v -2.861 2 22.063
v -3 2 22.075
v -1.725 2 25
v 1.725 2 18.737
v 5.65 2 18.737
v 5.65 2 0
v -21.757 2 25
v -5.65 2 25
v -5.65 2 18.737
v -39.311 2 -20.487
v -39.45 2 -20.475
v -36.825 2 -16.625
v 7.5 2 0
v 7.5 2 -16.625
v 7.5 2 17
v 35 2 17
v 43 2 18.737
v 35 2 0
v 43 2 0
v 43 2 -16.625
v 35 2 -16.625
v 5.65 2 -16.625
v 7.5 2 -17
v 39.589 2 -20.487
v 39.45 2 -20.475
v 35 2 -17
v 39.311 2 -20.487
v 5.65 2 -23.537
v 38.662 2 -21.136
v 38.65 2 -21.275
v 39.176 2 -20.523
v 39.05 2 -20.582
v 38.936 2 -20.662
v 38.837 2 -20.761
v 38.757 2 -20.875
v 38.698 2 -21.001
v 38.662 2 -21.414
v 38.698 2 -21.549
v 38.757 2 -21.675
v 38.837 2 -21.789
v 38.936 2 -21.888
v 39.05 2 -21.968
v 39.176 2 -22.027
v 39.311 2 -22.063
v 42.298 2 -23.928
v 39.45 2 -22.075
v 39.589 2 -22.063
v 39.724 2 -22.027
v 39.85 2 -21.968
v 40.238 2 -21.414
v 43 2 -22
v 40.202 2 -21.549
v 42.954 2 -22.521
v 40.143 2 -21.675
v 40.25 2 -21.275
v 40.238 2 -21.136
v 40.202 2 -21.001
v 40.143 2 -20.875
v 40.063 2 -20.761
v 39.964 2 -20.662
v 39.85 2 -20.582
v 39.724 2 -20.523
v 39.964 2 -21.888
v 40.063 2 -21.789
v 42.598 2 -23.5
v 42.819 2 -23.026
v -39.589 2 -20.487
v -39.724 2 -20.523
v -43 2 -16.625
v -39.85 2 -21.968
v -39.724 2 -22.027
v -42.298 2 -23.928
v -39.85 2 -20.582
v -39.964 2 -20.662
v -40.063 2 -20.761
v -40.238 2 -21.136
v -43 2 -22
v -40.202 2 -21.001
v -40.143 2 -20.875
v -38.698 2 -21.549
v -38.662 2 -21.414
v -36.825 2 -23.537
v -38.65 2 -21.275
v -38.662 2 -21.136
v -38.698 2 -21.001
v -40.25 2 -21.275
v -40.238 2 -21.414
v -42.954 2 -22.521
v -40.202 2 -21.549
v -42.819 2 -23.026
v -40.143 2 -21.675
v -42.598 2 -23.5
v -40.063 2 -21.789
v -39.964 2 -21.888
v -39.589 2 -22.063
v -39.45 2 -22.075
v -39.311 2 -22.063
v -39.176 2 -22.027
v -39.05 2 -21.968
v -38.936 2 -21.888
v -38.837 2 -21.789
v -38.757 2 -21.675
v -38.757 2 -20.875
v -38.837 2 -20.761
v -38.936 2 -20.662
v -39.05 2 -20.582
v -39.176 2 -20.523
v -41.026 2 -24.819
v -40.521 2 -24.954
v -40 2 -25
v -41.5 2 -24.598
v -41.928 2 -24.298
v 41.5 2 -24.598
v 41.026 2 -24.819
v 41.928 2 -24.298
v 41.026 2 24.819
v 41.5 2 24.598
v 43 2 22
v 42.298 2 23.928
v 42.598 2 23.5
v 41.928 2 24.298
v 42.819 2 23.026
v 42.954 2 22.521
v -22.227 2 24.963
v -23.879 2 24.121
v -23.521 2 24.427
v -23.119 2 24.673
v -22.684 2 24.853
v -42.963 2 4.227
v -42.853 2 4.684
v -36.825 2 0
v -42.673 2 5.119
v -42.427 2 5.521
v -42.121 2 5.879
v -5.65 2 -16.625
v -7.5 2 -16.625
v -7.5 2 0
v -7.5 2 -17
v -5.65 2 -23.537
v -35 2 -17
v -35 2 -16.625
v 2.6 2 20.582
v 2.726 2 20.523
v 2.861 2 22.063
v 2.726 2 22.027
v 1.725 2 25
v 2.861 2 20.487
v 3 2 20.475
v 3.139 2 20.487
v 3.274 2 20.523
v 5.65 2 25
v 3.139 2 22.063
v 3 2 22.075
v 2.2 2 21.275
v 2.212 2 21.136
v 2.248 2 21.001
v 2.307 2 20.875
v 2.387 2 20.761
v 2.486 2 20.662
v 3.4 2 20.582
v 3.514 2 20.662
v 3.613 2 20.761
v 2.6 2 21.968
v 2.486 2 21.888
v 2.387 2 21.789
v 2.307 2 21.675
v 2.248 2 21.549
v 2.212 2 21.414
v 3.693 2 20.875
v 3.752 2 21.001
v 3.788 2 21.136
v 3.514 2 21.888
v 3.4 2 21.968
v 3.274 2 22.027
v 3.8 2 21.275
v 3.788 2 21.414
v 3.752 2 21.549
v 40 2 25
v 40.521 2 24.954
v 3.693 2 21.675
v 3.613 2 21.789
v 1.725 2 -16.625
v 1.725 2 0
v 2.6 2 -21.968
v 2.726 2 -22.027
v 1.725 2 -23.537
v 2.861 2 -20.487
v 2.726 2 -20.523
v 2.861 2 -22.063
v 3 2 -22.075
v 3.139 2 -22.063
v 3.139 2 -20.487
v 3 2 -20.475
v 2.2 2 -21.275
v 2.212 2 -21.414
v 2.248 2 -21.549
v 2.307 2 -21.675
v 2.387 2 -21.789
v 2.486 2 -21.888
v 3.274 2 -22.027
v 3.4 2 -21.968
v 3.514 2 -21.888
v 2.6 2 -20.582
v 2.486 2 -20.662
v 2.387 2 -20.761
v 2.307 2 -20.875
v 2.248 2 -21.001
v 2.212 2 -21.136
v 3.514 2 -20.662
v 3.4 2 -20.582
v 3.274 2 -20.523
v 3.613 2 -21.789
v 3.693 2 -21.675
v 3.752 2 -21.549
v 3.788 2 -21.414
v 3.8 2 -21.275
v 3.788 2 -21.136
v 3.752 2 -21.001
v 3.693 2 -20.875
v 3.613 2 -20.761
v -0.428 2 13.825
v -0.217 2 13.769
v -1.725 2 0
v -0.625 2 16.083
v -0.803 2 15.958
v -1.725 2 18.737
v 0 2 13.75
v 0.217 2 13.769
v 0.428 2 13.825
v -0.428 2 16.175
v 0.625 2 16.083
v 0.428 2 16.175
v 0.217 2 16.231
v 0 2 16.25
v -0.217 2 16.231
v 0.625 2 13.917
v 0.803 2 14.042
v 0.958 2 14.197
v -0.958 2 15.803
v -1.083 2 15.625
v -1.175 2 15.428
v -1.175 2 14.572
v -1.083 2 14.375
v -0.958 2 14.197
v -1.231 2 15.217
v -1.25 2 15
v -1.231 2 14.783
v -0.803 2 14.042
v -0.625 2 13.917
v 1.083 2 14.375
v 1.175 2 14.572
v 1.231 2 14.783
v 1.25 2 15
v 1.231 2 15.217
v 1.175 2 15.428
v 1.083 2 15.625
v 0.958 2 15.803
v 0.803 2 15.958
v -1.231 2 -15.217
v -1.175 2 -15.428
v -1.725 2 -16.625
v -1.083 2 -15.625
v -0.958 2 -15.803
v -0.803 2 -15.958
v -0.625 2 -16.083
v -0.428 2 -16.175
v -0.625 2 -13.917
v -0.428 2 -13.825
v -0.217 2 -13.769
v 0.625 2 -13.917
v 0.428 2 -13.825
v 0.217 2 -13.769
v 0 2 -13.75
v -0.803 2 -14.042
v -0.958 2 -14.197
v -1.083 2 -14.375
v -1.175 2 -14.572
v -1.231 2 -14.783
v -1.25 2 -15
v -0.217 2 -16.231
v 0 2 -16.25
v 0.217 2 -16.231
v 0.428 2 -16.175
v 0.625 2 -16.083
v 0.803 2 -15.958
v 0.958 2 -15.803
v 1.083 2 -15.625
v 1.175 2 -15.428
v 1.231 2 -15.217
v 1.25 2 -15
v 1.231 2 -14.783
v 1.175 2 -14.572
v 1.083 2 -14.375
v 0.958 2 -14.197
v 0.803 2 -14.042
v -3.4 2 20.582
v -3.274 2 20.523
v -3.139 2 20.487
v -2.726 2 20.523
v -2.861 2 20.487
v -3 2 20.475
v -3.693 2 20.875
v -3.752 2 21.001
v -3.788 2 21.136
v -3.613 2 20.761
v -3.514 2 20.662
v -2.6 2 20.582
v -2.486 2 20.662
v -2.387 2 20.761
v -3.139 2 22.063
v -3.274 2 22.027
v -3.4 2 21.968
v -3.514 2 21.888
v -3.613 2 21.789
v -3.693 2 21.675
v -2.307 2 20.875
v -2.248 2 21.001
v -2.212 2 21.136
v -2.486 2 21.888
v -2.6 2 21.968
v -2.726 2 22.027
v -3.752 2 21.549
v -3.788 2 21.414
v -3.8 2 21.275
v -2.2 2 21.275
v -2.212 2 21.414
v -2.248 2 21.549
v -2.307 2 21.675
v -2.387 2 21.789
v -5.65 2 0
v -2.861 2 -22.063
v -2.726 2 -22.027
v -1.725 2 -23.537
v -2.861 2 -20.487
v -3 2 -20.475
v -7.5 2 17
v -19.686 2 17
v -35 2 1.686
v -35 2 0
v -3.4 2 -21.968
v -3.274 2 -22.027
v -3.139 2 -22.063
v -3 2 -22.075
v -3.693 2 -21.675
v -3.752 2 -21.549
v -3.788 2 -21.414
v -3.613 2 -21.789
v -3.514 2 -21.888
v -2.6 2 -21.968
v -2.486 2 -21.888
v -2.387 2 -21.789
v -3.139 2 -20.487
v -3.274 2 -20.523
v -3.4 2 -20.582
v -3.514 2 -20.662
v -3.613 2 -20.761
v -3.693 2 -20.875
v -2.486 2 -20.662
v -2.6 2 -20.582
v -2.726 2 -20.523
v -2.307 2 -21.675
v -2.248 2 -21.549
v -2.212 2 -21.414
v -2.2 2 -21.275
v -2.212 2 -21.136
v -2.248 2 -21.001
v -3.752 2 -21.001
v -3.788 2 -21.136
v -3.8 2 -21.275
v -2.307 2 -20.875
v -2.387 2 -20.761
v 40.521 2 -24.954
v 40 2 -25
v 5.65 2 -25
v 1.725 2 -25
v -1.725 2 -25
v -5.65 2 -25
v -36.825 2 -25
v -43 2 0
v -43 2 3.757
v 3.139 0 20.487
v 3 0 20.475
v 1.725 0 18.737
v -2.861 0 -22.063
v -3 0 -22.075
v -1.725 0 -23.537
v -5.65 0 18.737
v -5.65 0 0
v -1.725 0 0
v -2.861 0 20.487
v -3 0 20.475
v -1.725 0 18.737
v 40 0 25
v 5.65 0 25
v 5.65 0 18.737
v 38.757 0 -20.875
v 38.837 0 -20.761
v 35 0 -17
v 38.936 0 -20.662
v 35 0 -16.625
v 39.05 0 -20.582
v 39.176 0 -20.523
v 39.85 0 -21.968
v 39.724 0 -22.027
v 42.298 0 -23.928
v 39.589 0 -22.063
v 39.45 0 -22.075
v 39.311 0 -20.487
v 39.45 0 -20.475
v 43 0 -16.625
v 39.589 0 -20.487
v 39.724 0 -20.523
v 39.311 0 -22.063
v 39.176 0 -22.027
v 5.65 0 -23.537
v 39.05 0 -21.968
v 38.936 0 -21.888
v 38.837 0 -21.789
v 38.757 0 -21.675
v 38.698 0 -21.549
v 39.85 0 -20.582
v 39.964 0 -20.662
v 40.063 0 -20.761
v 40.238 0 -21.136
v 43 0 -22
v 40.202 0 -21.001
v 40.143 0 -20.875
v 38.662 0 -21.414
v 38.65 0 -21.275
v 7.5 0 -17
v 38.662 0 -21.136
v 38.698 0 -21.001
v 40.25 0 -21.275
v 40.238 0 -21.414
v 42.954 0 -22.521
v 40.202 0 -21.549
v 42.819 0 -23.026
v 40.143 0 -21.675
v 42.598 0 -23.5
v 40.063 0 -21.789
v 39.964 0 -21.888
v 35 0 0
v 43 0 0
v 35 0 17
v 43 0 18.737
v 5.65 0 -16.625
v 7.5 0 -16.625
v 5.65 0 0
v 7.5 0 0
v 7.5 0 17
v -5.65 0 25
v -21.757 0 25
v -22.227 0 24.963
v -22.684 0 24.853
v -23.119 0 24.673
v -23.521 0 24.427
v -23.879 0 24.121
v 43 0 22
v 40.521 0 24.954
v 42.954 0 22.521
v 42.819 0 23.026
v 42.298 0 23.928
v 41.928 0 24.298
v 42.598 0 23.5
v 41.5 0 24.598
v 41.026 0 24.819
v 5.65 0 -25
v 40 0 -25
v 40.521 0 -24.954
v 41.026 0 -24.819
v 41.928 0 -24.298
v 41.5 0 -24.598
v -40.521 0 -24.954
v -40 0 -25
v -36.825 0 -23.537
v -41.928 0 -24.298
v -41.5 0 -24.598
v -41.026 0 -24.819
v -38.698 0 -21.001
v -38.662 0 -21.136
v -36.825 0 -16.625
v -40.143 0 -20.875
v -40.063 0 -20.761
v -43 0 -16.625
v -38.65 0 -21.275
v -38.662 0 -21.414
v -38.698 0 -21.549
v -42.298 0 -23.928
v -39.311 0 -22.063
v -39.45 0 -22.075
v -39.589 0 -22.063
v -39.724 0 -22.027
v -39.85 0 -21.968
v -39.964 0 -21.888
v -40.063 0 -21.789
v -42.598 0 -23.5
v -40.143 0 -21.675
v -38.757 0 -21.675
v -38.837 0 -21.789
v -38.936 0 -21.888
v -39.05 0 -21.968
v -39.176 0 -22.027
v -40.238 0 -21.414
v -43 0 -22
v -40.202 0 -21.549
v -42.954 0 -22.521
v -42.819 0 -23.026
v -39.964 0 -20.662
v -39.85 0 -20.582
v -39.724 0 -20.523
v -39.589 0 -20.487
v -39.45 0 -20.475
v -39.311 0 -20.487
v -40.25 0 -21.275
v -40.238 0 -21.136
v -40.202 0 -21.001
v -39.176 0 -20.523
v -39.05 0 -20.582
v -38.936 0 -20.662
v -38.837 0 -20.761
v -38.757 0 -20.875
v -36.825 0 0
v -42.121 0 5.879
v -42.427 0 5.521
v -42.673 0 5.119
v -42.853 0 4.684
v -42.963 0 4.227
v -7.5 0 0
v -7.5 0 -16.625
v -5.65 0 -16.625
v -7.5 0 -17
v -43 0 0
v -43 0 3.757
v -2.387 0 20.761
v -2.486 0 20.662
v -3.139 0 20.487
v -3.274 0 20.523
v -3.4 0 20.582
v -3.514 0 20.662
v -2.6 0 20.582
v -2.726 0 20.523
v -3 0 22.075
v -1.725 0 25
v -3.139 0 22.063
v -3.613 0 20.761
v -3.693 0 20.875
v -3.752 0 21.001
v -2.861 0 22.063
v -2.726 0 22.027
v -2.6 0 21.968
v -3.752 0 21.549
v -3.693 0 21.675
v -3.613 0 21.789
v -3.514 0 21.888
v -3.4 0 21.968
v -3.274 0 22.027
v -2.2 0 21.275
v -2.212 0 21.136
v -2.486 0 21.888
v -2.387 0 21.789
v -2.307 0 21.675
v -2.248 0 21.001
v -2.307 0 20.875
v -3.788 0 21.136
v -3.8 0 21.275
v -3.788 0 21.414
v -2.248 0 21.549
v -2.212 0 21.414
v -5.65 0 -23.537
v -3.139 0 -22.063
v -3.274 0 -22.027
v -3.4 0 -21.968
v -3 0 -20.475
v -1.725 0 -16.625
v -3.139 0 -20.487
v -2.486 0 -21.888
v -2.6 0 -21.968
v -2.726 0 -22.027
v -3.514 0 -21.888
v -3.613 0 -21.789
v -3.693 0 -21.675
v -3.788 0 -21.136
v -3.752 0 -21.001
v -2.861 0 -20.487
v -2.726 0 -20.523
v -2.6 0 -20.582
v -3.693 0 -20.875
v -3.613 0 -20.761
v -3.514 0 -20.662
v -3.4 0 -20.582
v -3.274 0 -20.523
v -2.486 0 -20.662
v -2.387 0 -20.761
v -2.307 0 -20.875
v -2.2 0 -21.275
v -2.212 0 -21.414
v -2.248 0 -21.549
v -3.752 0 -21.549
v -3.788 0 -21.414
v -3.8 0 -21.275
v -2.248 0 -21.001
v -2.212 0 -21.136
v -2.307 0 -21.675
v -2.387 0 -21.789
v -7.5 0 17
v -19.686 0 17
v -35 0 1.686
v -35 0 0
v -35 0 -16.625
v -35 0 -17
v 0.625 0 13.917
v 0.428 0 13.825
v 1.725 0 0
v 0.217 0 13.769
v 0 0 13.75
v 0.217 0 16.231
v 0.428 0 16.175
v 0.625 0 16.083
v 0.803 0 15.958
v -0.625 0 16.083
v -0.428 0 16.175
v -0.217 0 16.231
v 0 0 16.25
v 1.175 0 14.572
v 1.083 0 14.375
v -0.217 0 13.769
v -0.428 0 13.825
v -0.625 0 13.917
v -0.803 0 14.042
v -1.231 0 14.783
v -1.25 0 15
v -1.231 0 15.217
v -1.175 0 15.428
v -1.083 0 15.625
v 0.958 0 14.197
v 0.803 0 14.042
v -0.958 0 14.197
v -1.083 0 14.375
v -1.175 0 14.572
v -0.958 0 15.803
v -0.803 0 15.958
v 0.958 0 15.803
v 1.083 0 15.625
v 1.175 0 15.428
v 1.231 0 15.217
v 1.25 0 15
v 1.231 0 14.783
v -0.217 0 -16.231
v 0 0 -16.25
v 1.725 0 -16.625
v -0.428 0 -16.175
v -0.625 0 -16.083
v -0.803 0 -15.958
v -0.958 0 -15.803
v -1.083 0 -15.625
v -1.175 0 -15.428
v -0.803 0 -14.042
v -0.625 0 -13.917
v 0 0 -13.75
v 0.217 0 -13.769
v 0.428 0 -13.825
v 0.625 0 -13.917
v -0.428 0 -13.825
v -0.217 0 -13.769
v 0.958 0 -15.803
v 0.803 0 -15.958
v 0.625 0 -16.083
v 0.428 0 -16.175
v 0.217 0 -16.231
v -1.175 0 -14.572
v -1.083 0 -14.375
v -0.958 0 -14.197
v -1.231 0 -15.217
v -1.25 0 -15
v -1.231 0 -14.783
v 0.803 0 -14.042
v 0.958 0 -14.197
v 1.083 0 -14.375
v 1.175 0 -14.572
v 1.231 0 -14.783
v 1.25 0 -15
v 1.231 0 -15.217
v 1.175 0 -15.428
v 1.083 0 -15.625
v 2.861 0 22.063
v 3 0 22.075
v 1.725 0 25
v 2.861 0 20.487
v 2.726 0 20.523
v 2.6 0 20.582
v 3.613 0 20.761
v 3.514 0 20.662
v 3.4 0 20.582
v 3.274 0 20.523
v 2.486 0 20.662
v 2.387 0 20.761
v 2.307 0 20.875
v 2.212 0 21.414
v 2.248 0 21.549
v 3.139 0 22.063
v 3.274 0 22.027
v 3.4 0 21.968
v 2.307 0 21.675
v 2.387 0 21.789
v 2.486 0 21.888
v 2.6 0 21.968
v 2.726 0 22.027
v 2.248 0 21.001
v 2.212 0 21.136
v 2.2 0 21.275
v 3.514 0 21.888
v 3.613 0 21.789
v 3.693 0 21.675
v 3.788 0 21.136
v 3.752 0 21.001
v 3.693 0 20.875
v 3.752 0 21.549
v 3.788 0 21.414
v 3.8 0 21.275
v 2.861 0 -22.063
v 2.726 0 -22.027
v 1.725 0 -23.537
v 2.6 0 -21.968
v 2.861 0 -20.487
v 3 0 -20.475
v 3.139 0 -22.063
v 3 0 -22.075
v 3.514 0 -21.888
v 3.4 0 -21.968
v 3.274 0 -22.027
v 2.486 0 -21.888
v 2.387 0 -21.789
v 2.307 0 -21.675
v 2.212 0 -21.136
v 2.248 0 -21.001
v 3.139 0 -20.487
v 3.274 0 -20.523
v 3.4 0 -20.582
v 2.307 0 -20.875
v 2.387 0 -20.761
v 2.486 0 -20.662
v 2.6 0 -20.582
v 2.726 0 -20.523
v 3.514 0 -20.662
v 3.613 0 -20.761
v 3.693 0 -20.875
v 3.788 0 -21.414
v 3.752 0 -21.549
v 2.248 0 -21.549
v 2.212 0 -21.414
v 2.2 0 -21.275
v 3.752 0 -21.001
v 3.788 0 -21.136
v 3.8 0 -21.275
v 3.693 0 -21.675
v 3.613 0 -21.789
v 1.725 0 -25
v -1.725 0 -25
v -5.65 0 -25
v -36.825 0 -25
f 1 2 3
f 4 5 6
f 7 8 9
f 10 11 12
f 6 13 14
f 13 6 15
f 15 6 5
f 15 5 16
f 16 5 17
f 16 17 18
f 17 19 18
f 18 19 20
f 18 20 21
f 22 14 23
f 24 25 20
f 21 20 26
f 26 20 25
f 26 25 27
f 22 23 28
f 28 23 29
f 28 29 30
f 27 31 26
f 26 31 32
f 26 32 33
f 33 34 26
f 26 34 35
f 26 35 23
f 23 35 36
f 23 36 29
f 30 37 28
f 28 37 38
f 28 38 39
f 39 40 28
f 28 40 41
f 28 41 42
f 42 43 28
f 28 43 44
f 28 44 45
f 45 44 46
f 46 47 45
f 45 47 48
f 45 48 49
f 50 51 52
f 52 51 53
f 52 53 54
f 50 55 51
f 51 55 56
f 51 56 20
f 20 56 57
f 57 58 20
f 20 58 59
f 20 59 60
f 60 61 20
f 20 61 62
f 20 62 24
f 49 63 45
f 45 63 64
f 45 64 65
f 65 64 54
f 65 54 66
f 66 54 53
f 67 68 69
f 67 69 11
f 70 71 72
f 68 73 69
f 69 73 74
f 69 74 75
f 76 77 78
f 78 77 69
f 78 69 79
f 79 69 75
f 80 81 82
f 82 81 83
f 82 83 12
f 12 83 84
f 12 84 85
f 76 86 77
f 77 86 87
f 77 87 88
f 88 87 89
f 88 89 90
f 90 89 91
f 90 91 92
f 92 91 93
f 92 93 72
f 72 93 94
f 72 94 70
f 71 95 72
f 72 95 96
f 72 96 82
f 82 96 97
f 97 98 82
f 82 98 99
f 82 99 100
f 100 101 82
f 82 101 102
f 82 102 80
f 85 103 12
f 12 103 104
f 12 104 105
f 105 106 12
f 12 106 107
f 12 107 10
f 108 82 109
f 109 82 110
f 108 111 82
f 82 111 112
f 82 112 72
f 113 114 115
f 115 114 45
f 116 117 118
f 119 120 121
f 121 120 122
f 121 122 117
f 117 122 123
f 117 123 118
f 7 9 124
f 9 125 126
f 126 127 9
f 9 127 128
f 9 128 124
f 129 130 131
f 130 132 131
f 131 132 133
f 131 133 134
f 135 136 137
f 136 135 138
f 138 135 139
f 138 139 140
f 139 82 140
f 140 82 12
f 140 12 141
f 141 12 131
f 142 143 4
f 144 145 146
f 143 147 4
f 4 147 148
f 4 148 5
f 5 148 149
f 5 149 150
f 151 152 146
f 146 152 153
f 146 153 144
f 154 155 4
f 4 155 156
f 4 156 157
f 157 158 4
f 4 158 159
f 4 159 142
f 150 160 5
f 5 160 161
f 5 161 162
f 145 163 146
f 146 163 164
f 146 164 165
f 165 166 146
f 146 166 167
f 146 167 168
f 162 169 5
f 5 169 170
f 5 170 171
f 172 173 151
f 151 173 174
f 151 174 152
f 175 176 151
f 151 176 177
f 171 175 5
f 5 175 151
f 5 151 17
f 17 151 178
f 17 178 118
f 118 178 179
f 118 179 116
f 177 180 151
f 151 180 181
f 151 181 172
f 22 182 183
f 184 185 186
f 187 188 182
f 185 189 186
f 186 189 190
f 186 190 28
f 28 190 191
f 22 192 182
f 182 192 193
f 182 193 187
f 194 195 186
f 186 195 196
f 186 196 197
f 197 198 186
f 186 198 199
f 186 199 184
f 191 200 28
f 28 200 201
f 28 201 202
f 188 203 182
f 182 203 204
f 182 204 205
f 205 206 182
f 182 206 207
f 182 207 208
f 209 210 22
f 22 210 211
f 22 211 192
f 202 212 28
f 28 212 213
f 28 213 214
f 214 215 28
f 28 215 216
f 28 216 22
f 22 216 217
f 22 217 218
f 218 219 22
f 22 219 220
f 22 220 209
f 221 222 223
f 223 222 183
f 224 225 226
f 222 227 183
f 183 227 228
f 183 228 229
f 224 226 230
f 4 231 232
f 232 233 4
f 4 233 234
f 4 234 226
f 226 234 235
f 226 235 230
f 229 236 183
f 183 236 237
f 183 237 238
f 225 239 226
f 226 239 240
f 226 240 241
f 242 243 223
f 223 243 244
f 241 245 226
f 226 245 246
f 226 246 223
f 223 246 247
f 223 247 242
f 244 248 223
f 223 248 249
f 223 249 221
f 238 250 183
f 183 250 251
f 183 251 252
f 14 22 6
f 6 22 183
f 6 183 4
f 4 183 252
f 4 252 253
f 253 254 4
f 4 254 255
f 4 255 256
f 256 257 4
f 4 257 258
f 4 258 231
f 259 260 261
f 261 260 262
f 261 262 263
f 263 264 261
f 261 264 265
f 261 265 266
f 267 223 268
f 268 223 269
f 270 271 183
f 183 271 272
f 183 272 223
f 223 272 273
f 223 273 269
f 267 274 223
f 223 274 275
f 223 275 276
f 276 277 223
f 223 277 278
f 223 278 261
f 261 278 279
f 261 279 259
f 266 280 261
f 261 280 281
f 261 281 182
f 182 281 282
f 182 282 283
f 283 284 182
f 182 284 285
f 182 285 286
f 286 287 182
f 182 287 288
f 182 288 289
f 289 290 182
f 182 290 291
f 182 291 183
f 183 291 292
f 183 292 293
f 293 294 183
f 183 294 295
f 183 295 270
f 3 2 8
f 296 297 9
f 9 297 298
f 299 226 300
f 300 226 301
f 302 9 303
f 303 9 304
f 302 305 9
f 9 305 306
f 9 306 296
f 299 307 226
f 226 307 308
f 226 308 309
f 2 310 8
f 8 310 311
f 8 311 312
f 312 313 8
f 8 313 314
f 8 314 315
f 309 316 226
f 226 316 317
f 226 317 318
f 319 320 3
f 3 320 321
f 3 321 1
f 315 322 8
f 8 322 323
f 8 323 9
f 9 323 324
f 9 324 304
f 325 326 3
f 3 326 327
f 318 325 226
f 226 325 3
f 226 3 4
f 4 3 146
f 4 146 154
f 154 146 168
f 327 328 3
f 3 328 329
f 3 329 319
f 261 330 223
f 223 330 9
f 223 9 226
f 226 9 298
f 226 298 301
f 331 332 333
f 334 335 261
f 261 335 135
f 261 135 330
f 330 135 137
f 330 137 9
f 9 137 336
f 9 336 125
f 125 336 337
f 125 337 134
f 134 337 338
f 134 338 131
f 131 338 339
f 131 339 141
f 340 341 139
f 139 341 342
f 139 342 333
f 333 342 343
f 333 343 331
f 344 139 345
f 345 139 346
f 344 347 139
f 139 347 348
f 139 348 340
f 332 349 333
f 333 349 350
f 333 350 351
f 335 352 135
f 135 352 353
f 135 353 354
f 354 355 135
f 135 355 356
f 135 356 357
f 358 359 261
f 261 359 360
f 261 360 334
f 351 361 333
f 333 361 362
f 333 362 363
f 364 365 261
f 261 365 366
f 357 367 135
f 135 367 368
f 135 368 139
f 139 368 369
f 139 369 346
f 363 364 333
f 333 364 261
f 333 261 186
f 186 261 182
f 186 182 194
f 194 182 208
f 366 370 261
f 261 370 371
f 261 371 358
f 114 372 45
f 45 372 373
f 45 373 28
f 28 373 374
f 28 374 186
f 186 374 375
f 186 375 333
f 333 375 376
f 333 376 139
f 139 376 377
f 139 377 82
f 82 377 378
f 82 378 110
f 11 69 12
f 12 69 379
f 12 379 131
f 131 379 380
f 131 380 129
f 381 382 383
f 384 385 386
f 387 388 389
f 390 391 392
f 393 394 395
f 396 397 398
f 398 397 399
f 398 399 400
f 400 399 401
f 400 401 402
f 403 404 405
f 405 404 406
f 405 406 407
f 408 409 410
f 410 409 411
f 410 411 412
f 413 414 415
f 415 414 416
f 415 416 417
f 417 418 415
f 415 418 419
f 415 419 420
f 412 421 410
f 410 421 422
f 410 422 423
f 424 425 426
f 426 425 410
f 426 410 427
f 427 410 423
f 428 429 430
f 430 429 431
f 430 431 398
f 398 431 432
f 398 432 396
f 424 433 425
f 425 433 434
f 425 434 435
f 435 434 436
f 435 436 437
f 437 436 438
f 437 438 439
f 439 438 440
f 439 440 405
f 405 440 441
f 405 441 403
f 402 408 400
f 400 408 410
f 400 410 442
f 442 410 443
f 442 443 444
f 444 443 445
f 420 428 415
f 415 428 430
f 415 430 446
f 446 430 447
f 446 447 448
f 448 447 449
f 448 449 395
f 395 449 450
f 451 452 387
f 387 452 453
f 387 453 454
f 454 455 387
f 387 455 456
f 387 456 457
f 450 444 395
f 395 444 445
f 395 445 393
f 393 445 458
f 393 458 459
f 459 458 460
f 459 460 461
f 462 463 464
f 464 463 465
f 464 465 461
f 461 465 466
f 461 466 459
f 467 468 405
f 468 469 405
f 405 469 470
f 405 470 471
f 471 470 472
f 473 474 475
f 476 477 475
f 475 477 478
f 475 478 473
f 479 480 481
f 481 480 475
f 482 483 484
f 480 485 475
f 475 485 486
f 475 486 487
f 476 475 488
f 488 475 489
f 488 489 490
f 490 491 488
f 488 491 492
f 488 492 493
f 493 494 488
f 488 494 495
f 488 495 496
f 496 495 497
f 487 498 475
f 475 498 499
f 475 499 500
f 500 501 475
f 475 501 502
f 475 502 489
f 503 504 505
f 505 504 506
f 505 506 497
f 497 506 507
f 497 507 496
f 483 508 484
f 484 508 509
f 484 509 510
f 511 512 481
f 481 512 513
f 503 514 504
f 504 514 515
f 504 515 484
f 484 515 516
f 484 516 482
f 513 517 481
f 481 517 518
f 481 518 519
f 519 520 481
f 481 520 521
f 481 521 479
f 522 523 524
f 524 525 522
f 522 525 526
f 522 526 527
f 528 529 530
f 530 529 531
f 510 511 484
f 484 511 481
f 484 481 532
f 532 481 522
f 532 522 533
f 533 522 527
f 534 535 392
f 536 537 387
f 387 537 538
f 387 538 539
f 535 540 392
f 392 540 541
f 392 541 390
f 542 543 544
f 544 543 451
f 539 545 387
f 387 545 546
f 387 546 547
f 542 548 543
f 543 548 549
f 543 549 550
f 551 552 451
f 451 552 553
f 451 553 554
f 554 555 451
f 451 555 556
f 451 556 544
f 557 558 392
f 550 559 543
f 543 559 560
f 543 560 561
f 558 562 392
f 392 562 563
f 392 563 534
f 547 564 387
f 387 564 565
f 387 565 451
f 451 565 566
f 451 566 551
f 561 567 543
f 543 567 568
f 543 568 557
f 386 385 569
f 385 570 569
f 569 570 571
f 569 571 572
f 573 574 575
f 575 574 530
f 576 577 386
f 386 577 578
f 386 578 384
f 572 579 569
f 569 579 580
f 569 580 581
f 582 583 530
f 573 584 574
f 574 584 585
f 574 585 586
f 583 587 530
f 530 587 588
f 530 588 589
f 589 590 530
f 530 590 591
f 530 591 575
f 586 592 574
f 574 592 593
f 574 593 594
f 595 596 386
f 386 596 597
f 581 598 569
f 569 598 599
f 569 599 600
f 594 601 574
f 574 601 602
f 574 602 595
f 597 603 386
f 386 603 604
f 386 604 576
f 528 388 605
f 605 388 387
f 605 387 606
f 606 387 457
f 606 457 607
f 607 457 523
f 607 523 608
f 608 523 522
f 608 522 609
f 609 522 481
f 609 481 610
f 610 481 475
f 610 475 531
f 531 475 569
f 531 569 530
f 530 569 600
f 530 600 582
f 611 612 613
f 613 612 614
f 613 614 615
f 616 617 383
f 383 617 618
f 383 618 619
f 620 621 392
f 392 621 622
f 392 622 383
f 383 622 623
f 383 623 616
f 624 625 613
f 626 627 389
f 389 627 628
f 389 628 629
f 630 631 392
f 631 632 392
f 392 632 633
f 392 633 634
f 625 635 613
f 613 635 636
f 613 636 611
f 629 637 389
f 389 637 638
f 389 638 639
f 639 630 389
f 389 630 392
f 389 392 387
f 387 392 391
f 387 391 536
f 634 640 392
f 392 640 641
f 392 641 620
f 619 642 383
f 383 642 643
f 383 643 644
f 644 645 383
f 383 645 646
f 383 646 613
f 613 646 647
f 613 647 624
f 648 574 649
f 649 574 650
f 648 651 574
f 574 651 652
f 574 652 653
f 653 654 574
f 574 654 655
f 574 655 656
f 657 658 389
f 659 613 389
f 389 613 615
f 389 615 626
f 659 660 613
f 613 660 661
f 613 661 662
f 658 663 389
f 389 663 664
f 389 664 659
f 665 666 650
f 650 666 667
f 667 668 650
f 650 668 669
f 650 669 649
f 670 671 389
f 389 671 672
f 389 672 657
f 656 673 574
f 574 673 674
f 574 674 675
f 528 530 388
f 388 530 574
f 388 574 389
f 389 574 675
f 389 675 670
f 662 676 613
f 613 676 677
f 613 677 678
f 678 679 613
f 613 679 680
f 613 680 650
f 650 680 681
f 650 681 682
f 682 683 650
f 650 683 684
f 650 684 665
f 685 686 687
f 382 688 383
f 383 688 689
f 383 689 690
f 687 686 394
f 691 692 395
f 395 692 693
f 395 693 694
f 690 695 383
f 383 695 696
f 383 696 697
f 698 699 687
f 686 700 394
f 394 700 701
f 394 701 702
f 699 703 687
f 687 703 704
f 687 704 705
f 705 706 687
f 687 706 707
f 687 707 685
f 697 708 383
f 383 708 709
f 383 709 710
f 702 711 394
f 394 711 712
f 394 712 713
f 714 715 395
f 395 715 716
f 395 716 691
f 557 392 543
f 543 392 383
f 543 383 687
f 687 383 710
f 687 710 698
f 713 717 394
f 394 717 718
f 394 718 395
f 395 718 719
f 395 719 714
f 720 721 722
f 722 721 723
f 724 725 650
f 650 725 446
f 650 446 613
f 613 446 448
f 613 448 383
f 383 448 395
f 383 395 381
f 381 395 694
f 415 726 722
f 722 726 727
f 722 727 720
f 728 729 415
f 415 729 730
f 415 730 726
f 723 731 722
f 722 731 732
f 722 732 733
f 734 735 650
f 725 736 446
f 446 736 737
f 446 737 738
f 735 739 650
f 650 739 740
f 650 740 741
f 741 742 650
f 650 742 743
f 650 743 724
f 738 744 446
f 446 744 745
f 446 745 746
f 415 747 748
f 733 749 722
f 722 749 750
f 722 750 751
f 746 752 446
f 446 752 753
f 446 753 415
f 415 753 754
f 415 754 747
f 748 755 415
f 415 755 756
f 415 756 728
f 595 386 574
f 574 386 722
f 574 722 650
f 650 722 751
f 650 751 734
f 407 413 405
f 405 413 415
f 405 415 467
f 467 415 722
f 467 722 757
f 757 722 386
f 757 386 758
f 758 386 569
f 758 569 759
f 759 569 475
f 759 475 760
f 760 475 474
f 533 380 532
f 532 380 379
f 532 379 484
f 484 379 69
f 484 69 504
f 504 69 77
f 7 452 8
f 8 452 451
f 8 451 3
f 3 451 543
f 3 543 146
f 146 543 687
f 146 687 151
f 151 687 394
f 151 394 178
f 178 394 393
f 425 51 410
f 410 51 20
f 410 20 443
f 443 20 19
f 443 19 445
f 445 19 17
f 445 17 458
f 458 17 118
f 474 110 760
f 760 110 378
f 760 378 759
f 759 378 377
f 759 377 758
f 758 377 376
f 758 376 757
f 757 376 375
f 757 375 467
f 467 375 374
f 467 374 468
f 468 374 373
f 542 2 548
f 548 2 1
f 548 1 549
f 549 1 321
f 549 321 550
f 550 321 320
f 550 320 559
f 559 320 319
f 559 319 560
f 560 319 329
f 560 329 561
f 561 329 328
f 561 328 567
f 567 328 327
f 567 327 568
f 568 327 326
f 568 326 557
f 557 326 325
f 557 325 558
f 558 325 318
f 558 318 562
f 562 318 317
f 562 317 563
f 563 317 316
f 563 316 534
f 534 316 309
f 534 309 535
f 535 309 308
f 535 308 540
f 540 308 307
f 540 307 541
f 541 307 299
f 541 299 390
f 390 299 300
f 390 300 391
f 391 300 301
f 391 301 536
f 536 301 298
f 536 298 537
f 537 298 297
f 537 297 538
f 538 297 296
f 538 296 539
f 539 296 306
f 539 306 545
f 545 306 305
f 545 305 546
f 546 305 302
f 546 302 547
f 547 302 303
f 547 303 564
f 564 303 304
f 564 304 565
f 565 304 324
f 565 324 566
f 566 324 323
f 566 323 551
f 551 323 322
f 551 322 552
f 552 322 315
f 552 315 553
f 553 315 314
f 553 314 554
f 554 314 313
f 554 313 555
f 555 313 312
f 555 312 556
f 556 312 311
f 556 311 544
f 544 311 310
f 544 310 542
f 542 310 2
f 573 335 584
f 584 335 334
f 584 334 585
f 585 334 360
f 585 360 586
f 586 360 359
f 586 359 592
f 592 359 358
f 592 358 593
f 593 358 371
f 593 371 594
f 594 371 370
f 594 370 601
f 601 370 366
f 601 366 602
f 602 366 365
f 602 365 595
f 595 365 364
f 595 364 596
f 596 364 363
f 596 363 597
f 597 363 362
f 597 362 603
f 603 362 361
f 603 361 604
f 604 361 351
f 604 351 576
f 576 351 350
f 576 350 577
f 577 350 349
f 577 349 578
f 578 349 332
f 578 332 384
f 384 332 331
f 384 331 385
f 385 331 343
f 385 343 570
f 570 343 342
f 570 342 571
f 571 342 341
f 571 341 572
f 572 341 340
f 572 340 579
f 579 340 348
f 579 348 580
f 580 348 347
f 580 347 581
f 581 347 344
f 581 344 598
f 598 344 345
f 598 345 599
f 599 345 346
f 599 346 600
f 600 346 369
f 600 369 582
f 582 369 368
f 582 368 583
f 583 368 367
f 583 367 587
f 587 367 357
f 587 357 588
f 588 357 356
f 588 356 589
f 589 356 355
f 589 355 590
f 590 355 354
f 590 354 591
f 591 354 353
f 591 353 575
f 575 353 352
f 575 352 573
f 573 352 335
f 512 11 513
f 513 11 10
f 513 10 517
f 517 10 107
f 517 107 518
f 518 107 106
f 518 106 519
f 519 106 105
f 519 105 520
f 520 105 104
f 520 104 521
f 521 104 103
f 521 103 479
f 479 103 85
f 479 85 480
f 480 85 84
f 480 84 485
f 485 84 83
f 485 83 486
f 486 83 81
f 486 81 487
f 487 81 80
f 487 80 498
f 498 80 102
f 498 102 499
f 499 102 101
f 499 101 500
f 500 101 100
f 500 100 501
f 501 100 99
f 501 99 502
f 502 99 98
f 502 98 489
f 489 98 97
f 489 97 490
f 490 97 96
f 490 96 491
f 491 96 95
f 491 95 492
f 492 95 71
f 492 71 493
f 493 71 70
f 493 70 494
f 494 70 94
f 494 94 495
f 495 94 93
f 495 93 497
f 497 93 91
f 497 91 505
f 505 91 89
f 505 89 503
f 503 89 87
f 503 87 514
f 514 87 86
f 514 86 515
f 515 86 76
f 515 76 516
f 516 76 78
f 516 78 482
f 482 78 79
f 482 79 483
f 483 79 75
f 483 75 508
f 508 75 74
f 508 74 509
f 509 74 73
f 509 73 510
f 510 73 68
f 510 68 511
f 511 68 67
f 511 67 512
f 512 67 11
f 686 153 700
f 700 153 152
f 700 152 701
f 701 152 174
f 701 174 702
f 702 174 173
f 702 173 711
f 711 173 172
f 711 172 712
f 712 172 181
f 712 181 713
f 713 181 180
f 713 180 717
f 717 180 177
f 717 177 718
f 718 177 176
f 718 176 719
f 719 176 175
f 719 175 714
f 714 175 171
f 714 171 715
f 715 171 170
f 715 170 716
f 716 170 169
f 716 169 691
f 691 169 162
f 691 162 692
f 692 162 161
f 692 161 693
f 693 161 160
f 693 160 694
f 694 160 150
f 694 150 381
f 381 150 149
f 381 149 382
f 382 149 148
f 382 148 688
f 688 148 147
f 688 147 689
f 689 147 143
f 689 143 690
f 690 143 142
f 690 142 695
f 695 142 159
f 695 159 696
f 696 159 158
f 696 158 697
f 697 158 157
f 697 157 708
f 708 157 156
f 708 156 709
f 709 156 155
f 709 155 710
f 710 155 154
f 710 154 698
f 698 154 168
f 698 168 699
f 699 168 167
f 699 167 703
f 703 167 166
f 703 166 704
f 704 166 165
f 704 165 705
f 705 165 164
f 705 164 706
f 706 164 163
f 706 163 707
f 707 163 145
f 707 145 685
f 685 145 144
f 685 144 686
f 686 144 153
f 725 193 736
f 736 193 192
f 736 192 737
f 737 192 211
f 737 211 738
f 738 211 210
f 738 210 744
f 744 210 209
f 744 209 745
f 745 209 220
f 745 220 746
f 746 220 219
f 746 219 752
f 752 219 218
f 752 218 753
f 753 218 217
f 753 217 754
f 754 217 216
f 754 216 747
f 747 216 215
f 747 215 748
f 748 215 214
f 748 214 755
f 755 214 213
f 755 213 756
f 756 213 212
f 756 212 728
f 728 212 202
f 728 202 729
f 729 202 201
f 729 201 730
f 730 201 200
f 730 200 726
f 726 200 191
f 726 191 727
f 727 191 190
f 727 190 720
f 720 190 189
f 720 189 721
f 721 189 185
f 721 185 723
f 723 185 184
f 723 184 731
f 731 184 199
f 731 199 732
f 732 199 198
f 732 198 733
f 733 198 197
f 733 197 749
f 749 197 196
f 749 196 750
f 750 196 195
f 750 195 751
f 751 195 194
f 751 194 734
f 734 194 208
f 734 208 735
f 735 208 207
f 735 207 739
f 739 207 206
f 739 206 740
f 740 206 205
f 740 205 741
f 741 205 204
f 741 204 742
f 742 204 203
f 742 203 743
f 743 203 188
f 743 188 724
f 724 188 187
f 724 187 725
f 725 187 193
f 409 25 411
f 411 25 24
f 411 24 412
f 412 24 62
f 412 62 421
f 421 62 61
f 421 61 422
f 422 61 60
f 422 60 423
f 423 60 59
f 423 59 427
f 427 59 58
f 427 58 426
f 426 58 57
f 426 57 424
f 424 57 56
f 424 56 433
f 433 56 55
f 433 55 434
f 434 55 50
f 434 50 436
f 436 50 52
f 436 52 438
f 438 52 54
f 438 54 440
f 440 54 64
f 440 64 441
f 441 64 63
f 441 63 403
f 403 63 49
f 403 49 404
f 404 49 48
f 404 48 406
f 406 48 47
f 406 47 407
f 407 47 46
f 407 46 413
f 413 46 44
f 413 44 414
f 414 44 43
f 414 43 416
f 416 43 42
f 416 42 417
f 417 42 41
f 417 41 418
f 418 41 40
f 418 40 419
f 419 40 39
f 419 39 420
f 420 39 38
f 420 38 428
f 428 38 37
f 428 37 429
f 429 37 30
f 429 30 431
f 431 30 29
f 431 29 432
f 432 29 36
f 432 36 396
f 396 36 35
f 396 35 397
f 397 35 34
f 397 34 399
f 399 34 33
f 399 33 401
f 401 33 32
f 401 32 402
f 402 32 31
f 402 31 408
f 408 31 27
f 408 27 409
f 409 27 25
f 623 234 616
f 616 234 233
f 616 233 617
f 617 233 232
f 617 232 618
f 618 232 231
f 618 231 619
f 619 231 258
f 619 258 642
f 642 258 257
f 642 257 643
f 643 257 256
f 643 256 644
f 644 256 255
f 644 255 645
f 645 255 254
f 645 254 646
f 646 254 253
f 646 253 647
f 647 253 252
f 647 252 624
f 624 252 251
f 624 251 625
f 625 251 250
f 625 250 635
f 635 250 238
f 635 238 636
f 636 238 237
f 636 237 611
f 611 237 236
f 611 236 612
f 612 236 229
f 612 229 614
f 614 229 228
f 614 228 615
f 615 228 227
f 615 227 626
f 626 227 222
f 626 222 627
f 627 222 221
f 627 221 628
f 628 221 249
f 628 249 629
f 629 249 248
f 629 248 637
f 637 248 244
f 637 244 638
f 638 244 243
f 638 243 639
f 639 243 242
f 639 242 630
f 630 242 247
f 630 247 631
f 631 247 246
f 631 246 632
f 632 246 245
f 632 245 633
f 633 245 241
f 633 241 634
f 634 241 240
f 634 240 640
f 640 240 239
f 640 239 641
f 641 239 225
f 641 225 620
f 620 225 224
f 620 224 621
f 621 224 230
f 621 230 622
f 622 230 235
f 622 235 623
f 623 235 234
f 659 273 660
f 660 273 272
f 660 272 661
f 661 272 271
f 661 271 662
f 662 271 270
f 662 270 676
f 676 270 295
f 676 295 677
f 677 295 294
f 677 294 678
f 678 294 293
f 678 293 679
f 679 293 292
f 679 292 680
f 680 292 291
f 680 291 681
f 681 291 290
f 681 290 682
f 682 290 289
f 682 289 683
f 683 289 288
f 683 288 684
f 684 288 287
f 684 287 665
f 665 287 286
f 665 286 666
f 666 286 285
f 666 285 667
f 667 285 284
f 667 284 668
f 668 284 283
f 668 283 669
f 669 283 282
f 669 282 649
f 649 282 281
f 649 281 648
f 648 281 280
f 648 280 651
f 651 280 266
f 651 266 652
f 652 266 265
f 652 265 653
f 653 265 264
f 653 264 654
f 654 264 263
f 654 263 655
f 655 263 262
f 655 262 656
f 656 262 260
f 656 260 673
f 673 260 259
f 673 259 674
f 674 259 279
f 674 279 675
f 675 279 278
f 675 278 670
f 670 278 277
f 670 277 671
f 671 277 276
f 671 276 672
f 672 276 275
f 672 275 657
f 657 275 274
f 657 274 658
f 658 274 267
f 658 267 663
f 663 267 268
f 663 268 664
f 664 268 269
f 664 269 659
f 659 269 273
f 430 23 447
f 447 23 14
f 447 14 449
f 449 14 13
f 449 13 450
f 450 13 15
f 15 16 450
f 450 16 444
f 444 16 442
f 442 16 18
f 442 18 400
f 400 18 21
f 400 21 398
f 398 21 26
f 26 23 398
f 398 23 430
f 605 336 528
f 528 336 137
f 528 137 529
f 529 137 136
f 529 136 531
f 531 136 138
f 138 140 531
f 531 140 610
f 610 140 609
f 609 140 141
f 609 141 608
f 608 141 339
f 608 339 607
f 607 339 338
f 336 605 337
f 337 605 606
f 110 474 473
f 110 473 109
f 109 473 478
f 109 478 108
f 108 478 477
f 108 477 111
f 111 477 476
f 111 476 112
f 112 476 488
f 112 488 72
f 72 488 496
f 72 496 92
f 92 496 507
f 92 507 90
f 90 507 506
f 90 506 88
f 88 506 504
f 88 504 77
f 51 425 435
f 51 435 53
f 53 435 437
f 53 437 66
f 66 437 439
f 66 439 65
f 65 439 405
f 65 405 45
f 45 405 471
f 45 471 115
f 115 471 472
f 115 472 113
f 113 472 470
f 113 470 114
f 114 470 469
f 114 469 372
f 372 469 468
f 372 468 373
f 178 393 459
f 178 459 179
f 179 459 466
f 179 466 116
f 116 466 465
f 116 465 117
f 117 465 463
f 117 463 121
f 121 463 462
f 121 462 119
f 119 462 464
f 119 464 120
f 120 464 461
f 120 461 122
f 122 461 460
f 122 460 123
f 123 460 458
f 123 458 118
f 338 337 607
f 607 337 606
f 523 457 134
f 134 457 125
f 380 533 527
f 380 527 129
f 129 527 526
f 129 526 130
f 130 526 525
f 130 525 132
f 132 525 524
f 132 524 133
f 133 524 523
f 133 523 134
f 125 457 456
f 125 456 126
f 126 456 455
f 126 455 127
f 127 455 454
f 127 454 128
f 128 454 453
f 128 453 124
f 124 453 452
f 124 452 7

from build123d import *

# Parameters (mm, degrees)
SKIZZE1_W                       = 86
SKIZZE1_H                       = 50
AUFSATZ_LINEAR_AUSTRAGEN1_DEPTH = 2
F_1_6_1_6_DIAMETER_HOLE1_D      = 1.6
M3X0_5_GEWINDEBOHRUNG1_D        = 2.5
M3X0_5_GEWINDEBOHRUNG1_DEPTH    = 8.5
M3X0_5_GEWINDEBOHRUNG1_TIP      = 0.751075774
SKIZZE6_W                       = 27.5
SKIZZE6_H                       = 34
SCHNITT_LINEAR_AUSTRAGEN1_DEPTH = 3
FILLET1_R                       = 3
CUT_EXTRUDE1_REACH              = 4
SKETCH1_W                       = 20
SKETCH1_H                       = 20
BOSS_EXTRUDE1_DEPTH             = 2
FILLET2_R                       = 3


with BuildPart() as part:
    # Skizze1 → Aufsatz-Linear austragen1 (new body)
    with BuildSketch(Plane(origin=(0, 0, 0), x_dir=(1, 0, 0), z_dir=(0, 1, 0))):
        Rectangle(SKIZZE1_W, SKIZZE1_H)
    extrude(amount=AUFSATZ_LINEAR_AUSTRAGEN1_DEPTH)

    # Ø1.6 (1.6) Diameter Hole1 (through all)
    with Locations(Plane(origin=(0, 2, 0), x_dir=(1, 0, 0), z_dir=(0, 1, 0))):
        with Locations((-39.45, 21.275), (-3, 21.275), (-3, -21.275)):
            f_1_6_1_6_diameter_hole1 = Hole(F_1_6_1_6_DIAMETER_HOLE1_D / 2)

    # Spiegeln1: Ø1.6 (1.6) Diameter Hole1 across plane
    add(f_1_6_1_6_diameter_hole1.mirror(Plane(origin=(0, 0, 0), x_dir=(0, 0, 1), z_dir=(1, 0, 0))), mode=Mode.SUBTRACT)

    # M3x0.5 Gewindebohrung1
    with Locations(Plane(origin=(0, 2, 0), x_dir=(1, 0, 0), z_dir=(0, 1, 0))):
        with Locations((0, 15), (0, -15)):
            Hole(M3X0_5_GEWINDEBOHRUNG1_D / 2, depth=M3X0_5_GEWINDEBOHRUNG1_DEPTH)
            with Locations((0, 0, -(M3X0_5_GEWINDEBOHRUNG1_DEPTH + M3X0_5_GEWINDEBOHRUNG1_TIP / 2))):  # 118° drill point
                Cone(0, M3X0_5_GEWINDEBOHRUNG1_D / 2, M3X0_5_GEWINDEBOHRUNG1_TIP, mode=Mode.SUBTRACT)

    # Skizze6 → Schnitt-Linear austragen1 (cut, through all)
    with BuildSketch(Plane(origin=(0, 0, 0), x_dir=(1, 0, 0), z_dir=(0, 1, 0))):
        with Locations((-21.25, 0)):
            Rectangle(SKIZZE6_W, SKIZZE6_H)
        with Locations((21.25, 0)):
            Rectangle(SKIZZE6_W, SKIZZE6_H)
    extrude(amount=SCHNITT_LINEAR_AUSTRAGEN1_DEPTH, mode=Mode.SUBTRACT)

    # Fillet1
    fillet1_edges = [part.edges().sort_by_distance(p)[0] for p in [
        (-43, 1, -25),
        (43, 1, -25),
        (43, 1, 25),
        (-43, 1, 25),
    ]]
    fillet(fillet1_edges, radius=FILLET1_R)

    # Sketch1 → Cut-Extrude1 (cut, up to next)
    with BuildSketch(Plane(origin=(0, 2, 0), x_dir=(1, 0, 0), z_dir=(0, 1, 0)), mode=Mode.PRIVATE) as cut_extrude1_sk1:
        with Locations((-33, -15)):
            Rectangle(SKETCH1_W, SKETCH1_H)
    cut_extrude1_tool1 = extrude(cut_extrude1_sk1.sketch, amount=-CUT_EXTRUDE1_REACH, mode=Mode.PRIVATE) & part.part
    add(cut_extrude1_tool1.solids().sort_by_distance((-33, 2, 15))[0], mode=Mode.SUBTRACT)

    # Sketch2 → Boss-Extrude1 (add)
    with BuildSketch(Plane(origin=(0, 2, 0), x_dir=(1, 0, 0), z_dir=(0, 1, 0))):
        Polygon((-43, -5), (-23, -25), (-23, -17), (-19.686291501, -17), (-35, -1.686291501), (-35, -5), align=None)
    extrude(amount=-BOSS_EXTRUDE1_DEPTH)

    # Fillet2
    fillet2_edges = [part.edges().sort_by_distance(p)[0] for p in [
        (-43, 1, 5),
        (-23, 1, 25),
    ]]
    fillet(fillet2_edges, radius=FILLET2_R)


solid = part.part
